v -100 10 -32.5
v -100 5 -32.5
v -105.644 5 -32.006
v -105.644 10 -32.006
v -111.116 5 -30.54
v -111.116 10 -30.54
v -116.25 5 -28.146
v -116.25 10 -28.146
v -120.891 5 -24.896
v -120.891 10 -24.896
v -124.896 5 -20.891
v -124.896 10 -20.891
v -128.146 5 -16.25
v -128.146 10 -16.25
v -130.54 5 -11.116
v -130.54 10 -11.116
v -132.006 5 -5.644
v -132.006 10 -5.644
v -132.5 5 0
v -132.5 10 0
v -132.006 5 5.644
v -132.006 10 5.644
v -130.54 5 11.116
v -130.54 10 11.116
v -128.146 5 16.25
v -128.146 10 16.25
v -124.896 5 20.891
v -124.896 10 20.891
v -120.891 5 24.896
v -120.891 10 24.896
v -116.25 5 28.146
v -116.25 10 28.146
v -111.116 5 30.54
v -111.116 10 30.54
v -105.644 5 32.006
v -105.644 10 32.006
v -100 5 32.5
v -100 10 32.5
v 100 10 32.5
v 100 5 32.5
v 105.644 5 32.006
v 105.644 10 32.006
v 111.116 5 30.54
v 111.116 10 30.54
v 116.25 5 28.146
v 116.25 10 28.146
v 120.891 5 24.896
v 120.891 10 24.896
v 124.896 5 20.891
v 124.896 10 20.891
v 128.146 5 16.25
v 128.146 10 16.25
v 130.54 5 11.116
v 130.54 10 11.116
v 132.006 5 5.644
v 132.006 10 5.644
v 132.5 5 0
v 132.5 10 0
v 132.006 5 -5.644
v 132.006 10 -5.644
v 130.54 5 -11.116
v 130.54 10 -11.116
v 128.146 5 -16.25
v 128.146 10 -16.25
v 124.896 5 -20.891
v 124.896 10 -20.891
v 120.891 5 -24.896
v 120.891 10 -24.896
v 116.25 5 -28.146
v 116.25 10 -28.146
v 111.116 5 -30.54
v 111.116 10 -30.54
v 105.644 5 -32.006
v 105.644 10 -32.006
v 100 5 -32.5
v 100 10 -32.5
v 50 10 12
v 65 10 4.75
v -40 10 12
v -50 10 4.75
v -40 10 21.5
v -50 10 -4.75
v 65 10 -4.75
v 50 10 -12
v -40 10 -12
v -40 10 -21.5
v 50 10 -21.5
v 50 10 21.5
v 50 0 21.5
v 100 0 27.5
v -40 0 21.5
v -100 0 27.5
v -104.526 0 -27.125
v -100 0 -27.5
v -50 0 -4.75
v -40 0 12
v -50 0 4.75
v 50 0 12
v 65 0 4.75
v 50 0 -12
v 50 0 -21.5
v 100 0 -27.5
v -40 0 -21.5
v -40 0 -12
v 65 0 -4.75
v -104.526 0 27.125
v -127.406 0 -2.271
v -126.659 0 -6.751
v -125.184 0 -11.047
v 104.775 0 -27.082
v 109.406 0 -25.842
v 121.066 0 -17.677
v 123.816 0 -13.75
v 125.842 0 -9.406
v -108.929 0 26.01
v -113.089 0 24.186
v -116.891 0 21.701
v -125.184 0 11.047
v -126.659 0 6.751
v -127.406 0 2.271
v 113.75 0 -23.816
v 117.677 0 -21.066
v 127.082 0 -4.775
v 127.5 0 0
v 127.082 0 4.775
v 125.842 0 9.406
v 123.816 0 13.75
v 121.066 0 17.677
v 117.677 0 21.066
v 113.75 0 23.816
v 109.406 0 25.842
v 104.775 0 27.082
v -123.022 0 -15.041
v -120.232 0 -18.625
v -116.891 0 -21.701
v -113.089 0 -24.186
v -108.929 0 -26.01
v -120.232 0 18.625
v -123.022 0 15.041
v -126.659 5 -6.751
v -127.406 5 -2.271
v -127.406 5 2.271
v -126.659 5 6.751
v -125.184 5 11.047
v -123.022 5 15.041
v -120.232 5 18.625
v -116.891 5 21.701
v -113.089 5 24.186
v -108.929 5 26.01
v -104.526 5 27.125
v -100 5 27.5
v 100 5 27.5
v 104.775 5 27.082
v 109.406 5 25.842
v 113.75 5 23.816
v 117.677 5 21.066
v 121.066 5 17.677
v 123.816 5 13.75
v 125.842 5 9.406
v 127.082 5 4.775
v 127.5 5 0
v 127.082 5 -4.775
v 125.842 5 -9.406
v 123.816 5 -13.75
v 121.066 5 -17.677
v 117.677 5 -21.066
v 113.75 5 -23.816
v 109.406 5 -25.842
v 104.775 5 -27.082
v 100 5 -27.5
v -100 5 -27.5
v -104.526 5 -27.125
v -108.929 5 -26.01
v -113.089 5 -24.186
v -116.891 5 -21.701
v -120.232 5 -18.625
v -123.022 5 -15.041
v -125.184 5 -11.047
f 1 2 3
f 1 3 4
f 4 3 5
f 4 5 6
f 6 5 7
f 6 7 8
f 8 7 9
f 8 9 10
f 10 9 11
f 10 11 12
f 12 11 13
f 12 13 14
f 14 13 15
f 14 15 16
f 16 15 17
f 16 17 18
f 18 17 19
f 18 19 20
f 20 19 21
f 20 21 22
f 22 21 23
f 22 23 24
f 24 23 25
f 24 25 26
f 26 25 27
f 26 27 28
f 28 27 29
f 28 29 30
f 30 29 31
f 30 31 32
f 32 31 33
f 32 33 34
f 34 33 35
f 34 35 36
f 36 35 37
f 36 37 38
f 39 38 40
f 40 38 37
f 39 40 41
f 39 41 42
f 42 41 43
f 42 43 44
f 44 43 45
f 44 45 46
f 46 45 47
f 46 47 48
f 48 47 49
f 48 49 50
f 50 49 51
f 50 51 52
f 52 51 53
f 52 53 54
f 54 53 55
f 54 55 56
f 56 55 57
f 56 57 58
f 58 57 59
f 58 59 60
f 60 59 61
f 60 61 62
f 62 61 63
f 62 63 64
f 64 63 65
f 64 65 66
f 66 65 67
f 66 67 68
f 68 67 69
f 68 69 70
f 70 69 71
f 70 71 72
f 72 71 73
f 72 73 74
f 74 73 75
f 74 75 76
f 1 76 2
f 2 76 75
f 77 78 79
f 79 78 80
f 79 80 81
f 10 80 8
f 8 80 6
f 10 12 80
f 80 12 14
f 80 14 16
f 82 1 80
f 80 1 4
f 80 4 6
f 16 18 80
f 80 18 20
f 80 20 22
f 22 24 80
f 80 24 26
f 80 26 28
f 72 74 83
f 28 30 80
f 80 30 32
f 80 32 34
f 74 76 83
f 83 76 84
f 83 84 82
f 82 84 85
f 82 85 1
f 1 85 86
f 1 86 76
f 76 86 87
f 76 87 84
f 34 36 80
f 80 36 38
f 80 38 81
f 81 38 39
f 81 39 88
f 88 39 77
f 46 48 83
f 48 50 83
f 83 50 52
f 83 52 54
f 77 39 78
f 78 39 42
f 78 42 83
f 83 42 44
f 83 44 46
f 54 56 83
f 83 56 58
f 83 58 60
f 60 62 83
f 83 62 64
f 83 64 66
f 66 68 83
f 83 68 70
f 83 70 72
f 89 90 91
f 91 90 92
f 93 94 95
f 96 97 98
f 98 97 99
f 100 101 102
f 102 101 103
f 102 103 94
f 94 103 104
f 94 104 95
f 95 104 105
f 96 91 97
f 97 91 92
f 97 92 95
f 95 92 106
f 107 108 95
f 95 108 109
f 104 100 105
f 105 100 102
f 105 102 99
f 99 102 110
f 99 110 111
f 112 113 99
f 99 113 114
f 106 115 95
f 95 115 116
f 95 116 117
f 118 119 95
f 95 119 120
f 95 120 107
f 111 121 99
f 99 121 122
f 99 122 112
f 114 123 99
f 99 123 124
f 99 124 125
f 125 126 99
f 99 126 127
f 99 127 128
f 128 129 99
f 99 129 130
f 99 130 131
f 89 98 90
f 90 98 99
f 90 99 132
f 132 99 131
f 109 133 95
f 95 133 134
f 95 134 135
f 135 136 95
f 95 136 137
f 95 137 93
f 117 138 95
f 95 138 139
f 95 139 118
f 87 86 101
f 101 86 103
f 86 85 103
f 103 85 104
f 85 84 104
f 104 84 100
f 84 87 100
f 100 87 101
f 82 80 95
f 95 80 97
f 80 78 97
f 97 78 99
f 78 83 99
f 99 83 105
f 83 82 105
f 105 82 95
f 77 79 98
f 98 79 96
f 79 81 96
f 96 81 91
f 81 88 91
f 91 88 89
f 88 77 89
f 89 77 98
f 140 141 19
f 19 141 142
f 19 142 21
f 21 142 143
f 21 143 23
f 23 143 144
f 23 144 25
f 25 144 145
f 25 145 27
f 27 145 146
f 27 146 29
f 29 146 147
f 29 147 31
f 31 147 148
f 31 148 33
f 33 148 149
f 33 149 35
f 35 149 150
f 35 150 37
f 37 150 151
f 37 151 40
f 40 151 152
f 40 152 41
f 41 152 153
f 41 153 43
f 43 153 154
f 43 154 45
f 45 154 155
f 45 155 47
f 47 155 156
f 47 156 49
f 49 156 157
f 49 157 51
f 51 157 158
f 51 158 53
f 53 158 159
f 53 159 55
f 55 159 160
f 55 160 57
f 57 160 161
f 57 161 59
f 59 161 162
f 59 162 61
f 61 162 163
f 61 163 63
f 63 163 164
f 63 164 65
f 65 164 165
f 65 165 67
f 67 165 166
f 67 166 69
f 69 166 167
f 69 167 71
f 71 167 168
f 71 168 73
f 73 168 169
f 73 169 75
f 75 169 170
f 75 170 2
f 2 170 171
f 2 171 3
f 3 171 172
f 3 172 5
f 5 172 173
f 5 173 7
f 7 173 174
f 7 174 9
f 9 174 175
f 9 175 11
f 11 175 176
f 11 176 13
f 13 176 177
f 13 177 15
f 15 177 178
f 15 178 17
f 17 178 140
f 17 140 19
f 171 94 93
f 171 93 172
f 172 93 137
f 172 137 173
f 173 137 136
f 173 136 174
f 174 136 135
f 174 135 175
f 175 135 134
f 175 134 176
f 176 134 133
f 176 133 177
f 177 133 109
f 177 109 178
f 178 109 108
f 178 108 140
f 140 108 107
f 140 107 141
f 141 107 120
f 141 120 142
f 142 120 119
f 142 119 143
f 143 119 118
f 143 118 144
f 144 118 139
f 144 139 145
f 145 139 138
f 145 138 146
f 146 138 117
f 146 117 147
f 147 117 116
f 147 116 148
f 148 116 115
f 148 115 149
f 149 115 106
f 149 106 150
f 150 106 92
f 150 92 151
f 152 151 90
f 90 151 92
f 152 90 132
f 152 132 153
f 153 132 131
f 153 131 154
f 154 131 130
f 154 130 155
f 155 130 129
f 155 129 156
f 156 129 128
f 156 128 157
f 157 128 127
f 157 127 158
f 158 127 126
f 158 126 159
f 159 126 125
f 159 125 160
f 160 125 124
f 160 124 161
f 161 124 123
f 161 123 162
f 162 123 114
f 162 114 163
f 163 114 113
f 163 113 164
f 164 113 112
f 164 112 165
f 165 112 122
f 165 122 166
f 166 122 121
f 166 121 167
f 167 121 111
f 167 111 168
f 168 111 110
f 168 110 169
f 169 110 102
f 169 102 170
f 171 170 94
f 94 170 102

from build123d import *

# Parameters (mm, degrees)
BOSS_EXTRUDE1_DEPTH = 10
CUT_EXTRUDE1_DEPTH  = 5


with BuildPart() as part:
    # Sketch1 → Boss-Extrude1 (new body)
    with BuildSketch(Plane(origin=(0, 0, 0), x_dir=(1, 0, 0), z_dir=(0, 1, 0))):
        with BuildLine():
            Line((-100, 32.5), (100, 32.5))
            ThreePointArc((100, 32.5), (132.5, 0), (100, -32.5))
            Line((100, -32.5), (-100, -32.5))
            ThreePointArc((-100, -32.5), (-132.5, 0), (-100, 32.5))
        make_face()
        Polygon((0, 21.5), (-40, 21.5), (-40, 12), (0, 12), (50, 12), (50, 21.5), align=None, mode=Mode.SUBTRACT)
        Polygon((-50, 4.75), (0, 4.75), (65, 4.75), (65, -4.75), (0, -4.75), (-50, -4.75), align=None, mode=Mode.SUBTRACT)
        Polygon((0, -12), (-40, -12), (-40, -21.5), (0, -21.5), (50, -21.5), (50, -12), align=None, mode=Mode.SUBTRACT)
    extrude(amount=BOSS_EXTRUDE1_DEPTH)

    # Sketch2 → Cut-Extrude1 (cut)
    with BuildSketch(Plane(origin=(0, 0, 0), x_dir=(1, 0, 0), z_dir=(0, 1, 0))):
        with BuildLine():
            Line((-100, 32.5), (100, 32.5))
            ThreePointArc((100, 32.5), (132.5, 0), (100, -32.5))
            Line((100, -32.5), (-100, -32.5))
            ThreePointArc((-100, -32.5), (-132.5, 0), (-100, 32.5))
        make_face()
        with BuildLine():
            Line((-100, 27.5), (100, 27.5))
            ThreePointArc((100, 27.5), (127.5, 0), (100, -27.5))
            Line((100, -27.5), (-100, -27.5))
            ThreePointArc((-100, -27.5), (-127.5, 0), (-100, 27.5))
        make_face(mode=Mode.SUBTRACT)
    extrude(amount=CUT_EXTRUDE1_DEPTH, mode=Mode.SUBTRACT)


solid = part.part
